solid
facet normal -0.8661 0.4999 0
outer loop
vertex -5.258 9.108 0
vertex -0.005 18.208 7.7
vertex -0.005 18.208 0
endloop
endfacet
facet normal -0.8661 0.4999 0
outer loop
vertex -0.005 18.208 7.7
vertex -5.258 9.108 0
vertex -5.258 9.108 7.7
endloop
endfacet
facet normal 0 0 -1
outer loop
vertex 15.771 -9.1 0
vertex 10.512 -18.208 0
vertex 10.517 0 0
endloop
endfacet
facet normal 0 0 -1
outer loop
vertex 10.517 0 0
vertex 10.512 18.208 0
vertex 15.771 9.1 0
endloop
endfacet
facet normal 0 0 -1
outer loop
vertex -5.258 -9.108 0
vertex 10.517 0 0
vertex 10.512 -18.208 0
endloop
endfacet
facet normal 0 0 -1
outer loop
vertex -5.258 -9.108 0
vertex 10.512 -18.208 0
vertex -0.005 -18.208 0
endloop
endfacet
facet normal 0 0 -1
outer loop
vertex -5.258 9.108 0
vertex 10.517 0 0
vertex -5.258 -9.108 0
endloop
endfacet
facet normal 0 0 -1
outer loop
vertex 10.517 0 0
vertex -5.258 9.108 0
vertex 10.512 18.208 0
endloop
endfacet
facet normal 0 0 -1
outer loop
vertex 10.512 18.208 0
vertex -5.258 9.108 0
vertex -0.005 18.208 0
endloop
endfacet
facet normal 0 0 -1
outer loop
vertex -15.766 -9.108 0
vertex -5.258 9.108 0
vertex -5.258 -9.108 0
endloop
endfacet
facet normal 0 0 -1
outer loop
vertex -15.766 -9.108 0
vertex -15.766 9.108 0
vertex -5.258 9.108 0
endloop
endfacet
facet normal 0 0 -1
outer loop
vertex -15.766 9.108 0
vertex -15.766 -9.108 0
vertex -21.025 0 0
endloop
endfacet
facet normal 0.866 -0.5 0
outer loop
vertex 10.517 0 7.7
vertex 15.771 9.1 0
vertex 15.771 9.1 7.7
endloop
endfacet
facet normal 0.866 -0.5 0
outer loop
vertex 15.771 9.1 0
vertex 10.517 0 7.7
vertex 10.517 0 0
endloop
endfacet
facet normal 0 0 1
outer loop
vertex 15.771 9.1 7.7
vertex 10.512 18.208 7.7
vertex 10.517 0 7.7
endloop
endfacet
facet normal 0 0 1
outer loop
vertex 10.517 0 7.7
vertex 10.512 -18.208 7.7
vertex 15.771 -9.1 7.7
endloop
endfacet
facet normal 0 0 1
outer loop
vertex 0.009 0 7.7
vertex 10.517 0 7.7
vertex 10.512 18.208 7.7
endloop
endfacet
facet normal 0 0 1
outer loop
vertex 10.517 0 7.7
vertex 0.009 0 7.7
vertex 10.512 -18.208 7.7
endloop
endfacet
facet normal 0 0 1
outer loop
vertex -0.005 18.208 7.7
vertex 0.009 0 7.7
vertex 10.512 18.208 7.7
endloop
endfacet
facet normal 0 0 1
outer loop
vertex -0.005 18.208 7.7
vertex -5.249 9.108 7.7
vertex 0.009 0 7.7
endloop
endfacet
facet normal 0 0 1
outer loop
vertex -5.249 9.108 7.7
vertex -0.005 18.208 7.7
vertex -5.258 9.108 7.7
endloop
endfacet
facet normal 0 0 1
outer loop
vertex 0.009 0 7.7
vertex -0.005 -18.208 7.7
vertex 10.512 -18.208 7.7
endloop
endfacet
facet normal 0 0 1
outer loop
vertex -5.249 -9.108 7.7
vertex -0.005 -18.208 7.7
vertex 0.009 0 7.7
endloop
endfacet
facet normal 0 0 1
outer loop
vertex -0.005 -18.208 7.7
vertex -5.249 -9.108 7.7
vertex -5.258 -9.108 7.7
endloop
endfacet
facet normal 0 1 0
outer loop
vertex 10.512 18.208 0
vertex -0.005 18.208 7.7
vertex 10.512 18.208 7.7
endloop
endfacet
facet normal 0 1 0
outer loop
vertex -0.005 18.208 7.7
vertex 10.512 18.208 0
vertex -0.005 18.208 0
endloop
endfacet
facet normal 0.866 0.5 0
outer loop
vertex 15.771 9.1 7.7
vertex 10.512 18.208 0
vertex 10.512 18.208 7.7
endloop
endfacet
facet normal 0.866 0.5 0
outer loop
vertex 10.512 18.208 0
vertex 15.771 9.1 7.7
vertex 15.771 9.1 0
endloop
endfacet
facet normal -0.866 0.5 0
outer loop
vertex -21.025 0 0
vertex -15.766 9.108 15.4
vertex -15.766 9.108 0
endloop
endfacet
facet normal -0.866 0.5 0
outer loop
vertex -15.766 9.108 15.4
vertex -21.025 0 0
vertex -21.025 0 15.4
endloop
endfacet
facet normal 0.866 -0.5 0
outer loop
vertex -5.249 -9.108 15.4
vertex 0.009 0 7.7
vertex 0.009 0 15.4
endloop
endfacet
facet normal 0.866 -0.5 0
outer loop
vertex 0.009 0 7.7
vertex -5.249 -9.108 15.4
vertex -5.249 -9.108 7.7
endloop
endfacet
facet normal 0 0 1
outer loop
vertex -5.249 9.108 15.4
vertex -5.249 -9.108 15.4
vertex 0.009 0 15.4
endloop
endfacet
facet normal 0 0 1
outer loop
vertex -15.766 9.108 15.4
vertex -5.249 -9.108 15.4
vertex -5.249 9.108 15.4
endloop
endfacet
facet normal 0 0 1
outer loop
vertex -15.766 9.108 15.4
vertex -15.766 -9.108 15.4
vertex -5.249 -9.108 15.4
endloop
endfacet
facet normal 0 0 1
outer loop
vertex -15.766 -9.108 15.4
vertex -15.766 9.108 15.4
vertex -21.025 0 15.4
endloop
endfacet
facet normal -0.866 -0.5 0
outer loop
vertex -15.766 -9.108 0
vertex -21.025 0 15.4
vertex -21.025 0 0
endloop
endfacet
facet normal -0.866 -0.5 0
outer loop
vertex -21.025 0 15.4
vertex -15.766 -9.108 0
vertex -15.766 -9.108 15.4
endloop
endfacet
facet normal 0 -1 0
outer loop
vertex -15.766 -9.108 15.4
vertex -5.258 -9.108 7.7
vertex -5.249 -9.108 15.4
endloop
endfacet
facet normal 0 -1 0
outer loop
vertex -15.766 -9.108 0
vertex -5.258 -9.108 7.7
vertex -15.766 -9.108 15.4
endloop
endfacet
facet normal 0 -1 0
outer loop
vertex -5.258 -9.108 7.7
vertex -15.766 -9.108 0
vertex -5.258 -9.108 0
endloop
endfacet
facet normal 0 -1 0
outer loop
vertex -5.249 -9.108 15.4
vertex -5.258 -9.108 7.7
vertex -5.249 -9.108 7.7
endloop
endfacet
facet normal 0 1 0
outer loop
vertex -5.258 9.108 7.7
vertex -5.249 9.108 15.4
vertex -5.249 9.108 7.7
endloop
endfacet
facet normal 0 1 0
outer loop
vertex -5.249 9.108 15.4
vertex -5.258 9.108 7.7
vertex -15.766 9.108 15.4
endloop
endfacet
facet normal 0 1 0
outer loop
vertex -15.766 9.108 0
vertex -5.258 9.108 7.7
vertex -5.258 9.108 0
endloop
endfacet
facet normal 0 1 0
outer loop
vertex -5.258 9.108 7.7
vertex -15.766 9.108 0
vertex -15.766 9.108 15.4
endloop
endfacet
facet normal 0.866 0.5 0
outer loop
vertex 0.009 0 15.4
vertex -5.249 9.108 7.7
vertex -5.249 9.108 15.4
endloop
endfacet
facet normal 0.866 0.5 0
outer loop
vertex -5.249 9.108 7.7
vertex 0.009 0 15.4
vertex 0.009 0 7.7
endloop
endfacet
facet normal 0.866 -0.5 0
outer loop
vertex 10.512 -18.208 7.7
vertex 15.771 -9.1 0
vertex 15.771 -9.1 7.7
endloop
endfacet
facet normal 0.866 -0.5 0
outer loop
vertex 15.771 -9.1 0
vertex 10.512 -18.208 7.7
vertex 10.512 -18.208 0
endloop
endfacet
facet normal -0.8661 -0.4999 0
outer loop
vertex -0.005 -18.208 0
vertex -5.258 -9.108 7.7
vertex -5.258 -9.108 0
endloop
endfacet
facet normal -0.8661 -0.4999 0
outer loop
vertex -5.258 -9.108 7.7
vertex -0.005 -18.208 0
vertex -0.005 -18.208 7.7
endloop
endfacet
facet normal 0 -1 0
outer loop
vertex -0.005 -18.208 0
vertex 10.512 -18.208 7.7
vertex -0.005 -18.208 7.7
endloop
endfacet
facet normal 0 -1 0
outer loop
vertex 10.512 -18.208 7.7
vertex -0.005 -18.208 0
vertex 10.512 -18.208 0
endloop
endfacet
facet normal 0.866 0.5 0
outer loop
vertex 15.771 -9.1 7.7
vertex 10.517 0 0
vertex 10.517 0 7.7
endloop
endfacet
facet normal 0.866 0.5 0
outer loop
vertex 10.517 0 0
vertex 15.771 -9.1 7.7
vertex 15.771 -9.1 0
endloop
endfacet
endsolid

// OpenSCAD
// file: dimensions.scad
measureX = 9.10; // 92/2/2/sqrt(19)*sqrt(3)
measureY = 9.10; 
measureZ = 7.7; // 54/7 is about 7.7

halfSide = 1*tan(30);
h1 = 1;
dd = 0.001;
// main file
include <dimensions.scad>

hh = [1,2,1];

scale([measureX,measureY,measureZ])  union() {
    translate([halfSide,1,0]) 
    linear_extrude(height = hh[0]*h1, center = false)
    circle(2*halfSide + dd,$fn=6);
    
    translate([-2*halfSide,0,0]) 
    linear_extrude(height = hh[1]*h1, center = false)
    circle(2*halfSide + dd,$fn=6);
    
    translate([halfSide,-1,0]) 
    linear_extrude(height = hh[2]*h1, center = false)
    circle(2*halfSide + dd,$fn=6);
}
